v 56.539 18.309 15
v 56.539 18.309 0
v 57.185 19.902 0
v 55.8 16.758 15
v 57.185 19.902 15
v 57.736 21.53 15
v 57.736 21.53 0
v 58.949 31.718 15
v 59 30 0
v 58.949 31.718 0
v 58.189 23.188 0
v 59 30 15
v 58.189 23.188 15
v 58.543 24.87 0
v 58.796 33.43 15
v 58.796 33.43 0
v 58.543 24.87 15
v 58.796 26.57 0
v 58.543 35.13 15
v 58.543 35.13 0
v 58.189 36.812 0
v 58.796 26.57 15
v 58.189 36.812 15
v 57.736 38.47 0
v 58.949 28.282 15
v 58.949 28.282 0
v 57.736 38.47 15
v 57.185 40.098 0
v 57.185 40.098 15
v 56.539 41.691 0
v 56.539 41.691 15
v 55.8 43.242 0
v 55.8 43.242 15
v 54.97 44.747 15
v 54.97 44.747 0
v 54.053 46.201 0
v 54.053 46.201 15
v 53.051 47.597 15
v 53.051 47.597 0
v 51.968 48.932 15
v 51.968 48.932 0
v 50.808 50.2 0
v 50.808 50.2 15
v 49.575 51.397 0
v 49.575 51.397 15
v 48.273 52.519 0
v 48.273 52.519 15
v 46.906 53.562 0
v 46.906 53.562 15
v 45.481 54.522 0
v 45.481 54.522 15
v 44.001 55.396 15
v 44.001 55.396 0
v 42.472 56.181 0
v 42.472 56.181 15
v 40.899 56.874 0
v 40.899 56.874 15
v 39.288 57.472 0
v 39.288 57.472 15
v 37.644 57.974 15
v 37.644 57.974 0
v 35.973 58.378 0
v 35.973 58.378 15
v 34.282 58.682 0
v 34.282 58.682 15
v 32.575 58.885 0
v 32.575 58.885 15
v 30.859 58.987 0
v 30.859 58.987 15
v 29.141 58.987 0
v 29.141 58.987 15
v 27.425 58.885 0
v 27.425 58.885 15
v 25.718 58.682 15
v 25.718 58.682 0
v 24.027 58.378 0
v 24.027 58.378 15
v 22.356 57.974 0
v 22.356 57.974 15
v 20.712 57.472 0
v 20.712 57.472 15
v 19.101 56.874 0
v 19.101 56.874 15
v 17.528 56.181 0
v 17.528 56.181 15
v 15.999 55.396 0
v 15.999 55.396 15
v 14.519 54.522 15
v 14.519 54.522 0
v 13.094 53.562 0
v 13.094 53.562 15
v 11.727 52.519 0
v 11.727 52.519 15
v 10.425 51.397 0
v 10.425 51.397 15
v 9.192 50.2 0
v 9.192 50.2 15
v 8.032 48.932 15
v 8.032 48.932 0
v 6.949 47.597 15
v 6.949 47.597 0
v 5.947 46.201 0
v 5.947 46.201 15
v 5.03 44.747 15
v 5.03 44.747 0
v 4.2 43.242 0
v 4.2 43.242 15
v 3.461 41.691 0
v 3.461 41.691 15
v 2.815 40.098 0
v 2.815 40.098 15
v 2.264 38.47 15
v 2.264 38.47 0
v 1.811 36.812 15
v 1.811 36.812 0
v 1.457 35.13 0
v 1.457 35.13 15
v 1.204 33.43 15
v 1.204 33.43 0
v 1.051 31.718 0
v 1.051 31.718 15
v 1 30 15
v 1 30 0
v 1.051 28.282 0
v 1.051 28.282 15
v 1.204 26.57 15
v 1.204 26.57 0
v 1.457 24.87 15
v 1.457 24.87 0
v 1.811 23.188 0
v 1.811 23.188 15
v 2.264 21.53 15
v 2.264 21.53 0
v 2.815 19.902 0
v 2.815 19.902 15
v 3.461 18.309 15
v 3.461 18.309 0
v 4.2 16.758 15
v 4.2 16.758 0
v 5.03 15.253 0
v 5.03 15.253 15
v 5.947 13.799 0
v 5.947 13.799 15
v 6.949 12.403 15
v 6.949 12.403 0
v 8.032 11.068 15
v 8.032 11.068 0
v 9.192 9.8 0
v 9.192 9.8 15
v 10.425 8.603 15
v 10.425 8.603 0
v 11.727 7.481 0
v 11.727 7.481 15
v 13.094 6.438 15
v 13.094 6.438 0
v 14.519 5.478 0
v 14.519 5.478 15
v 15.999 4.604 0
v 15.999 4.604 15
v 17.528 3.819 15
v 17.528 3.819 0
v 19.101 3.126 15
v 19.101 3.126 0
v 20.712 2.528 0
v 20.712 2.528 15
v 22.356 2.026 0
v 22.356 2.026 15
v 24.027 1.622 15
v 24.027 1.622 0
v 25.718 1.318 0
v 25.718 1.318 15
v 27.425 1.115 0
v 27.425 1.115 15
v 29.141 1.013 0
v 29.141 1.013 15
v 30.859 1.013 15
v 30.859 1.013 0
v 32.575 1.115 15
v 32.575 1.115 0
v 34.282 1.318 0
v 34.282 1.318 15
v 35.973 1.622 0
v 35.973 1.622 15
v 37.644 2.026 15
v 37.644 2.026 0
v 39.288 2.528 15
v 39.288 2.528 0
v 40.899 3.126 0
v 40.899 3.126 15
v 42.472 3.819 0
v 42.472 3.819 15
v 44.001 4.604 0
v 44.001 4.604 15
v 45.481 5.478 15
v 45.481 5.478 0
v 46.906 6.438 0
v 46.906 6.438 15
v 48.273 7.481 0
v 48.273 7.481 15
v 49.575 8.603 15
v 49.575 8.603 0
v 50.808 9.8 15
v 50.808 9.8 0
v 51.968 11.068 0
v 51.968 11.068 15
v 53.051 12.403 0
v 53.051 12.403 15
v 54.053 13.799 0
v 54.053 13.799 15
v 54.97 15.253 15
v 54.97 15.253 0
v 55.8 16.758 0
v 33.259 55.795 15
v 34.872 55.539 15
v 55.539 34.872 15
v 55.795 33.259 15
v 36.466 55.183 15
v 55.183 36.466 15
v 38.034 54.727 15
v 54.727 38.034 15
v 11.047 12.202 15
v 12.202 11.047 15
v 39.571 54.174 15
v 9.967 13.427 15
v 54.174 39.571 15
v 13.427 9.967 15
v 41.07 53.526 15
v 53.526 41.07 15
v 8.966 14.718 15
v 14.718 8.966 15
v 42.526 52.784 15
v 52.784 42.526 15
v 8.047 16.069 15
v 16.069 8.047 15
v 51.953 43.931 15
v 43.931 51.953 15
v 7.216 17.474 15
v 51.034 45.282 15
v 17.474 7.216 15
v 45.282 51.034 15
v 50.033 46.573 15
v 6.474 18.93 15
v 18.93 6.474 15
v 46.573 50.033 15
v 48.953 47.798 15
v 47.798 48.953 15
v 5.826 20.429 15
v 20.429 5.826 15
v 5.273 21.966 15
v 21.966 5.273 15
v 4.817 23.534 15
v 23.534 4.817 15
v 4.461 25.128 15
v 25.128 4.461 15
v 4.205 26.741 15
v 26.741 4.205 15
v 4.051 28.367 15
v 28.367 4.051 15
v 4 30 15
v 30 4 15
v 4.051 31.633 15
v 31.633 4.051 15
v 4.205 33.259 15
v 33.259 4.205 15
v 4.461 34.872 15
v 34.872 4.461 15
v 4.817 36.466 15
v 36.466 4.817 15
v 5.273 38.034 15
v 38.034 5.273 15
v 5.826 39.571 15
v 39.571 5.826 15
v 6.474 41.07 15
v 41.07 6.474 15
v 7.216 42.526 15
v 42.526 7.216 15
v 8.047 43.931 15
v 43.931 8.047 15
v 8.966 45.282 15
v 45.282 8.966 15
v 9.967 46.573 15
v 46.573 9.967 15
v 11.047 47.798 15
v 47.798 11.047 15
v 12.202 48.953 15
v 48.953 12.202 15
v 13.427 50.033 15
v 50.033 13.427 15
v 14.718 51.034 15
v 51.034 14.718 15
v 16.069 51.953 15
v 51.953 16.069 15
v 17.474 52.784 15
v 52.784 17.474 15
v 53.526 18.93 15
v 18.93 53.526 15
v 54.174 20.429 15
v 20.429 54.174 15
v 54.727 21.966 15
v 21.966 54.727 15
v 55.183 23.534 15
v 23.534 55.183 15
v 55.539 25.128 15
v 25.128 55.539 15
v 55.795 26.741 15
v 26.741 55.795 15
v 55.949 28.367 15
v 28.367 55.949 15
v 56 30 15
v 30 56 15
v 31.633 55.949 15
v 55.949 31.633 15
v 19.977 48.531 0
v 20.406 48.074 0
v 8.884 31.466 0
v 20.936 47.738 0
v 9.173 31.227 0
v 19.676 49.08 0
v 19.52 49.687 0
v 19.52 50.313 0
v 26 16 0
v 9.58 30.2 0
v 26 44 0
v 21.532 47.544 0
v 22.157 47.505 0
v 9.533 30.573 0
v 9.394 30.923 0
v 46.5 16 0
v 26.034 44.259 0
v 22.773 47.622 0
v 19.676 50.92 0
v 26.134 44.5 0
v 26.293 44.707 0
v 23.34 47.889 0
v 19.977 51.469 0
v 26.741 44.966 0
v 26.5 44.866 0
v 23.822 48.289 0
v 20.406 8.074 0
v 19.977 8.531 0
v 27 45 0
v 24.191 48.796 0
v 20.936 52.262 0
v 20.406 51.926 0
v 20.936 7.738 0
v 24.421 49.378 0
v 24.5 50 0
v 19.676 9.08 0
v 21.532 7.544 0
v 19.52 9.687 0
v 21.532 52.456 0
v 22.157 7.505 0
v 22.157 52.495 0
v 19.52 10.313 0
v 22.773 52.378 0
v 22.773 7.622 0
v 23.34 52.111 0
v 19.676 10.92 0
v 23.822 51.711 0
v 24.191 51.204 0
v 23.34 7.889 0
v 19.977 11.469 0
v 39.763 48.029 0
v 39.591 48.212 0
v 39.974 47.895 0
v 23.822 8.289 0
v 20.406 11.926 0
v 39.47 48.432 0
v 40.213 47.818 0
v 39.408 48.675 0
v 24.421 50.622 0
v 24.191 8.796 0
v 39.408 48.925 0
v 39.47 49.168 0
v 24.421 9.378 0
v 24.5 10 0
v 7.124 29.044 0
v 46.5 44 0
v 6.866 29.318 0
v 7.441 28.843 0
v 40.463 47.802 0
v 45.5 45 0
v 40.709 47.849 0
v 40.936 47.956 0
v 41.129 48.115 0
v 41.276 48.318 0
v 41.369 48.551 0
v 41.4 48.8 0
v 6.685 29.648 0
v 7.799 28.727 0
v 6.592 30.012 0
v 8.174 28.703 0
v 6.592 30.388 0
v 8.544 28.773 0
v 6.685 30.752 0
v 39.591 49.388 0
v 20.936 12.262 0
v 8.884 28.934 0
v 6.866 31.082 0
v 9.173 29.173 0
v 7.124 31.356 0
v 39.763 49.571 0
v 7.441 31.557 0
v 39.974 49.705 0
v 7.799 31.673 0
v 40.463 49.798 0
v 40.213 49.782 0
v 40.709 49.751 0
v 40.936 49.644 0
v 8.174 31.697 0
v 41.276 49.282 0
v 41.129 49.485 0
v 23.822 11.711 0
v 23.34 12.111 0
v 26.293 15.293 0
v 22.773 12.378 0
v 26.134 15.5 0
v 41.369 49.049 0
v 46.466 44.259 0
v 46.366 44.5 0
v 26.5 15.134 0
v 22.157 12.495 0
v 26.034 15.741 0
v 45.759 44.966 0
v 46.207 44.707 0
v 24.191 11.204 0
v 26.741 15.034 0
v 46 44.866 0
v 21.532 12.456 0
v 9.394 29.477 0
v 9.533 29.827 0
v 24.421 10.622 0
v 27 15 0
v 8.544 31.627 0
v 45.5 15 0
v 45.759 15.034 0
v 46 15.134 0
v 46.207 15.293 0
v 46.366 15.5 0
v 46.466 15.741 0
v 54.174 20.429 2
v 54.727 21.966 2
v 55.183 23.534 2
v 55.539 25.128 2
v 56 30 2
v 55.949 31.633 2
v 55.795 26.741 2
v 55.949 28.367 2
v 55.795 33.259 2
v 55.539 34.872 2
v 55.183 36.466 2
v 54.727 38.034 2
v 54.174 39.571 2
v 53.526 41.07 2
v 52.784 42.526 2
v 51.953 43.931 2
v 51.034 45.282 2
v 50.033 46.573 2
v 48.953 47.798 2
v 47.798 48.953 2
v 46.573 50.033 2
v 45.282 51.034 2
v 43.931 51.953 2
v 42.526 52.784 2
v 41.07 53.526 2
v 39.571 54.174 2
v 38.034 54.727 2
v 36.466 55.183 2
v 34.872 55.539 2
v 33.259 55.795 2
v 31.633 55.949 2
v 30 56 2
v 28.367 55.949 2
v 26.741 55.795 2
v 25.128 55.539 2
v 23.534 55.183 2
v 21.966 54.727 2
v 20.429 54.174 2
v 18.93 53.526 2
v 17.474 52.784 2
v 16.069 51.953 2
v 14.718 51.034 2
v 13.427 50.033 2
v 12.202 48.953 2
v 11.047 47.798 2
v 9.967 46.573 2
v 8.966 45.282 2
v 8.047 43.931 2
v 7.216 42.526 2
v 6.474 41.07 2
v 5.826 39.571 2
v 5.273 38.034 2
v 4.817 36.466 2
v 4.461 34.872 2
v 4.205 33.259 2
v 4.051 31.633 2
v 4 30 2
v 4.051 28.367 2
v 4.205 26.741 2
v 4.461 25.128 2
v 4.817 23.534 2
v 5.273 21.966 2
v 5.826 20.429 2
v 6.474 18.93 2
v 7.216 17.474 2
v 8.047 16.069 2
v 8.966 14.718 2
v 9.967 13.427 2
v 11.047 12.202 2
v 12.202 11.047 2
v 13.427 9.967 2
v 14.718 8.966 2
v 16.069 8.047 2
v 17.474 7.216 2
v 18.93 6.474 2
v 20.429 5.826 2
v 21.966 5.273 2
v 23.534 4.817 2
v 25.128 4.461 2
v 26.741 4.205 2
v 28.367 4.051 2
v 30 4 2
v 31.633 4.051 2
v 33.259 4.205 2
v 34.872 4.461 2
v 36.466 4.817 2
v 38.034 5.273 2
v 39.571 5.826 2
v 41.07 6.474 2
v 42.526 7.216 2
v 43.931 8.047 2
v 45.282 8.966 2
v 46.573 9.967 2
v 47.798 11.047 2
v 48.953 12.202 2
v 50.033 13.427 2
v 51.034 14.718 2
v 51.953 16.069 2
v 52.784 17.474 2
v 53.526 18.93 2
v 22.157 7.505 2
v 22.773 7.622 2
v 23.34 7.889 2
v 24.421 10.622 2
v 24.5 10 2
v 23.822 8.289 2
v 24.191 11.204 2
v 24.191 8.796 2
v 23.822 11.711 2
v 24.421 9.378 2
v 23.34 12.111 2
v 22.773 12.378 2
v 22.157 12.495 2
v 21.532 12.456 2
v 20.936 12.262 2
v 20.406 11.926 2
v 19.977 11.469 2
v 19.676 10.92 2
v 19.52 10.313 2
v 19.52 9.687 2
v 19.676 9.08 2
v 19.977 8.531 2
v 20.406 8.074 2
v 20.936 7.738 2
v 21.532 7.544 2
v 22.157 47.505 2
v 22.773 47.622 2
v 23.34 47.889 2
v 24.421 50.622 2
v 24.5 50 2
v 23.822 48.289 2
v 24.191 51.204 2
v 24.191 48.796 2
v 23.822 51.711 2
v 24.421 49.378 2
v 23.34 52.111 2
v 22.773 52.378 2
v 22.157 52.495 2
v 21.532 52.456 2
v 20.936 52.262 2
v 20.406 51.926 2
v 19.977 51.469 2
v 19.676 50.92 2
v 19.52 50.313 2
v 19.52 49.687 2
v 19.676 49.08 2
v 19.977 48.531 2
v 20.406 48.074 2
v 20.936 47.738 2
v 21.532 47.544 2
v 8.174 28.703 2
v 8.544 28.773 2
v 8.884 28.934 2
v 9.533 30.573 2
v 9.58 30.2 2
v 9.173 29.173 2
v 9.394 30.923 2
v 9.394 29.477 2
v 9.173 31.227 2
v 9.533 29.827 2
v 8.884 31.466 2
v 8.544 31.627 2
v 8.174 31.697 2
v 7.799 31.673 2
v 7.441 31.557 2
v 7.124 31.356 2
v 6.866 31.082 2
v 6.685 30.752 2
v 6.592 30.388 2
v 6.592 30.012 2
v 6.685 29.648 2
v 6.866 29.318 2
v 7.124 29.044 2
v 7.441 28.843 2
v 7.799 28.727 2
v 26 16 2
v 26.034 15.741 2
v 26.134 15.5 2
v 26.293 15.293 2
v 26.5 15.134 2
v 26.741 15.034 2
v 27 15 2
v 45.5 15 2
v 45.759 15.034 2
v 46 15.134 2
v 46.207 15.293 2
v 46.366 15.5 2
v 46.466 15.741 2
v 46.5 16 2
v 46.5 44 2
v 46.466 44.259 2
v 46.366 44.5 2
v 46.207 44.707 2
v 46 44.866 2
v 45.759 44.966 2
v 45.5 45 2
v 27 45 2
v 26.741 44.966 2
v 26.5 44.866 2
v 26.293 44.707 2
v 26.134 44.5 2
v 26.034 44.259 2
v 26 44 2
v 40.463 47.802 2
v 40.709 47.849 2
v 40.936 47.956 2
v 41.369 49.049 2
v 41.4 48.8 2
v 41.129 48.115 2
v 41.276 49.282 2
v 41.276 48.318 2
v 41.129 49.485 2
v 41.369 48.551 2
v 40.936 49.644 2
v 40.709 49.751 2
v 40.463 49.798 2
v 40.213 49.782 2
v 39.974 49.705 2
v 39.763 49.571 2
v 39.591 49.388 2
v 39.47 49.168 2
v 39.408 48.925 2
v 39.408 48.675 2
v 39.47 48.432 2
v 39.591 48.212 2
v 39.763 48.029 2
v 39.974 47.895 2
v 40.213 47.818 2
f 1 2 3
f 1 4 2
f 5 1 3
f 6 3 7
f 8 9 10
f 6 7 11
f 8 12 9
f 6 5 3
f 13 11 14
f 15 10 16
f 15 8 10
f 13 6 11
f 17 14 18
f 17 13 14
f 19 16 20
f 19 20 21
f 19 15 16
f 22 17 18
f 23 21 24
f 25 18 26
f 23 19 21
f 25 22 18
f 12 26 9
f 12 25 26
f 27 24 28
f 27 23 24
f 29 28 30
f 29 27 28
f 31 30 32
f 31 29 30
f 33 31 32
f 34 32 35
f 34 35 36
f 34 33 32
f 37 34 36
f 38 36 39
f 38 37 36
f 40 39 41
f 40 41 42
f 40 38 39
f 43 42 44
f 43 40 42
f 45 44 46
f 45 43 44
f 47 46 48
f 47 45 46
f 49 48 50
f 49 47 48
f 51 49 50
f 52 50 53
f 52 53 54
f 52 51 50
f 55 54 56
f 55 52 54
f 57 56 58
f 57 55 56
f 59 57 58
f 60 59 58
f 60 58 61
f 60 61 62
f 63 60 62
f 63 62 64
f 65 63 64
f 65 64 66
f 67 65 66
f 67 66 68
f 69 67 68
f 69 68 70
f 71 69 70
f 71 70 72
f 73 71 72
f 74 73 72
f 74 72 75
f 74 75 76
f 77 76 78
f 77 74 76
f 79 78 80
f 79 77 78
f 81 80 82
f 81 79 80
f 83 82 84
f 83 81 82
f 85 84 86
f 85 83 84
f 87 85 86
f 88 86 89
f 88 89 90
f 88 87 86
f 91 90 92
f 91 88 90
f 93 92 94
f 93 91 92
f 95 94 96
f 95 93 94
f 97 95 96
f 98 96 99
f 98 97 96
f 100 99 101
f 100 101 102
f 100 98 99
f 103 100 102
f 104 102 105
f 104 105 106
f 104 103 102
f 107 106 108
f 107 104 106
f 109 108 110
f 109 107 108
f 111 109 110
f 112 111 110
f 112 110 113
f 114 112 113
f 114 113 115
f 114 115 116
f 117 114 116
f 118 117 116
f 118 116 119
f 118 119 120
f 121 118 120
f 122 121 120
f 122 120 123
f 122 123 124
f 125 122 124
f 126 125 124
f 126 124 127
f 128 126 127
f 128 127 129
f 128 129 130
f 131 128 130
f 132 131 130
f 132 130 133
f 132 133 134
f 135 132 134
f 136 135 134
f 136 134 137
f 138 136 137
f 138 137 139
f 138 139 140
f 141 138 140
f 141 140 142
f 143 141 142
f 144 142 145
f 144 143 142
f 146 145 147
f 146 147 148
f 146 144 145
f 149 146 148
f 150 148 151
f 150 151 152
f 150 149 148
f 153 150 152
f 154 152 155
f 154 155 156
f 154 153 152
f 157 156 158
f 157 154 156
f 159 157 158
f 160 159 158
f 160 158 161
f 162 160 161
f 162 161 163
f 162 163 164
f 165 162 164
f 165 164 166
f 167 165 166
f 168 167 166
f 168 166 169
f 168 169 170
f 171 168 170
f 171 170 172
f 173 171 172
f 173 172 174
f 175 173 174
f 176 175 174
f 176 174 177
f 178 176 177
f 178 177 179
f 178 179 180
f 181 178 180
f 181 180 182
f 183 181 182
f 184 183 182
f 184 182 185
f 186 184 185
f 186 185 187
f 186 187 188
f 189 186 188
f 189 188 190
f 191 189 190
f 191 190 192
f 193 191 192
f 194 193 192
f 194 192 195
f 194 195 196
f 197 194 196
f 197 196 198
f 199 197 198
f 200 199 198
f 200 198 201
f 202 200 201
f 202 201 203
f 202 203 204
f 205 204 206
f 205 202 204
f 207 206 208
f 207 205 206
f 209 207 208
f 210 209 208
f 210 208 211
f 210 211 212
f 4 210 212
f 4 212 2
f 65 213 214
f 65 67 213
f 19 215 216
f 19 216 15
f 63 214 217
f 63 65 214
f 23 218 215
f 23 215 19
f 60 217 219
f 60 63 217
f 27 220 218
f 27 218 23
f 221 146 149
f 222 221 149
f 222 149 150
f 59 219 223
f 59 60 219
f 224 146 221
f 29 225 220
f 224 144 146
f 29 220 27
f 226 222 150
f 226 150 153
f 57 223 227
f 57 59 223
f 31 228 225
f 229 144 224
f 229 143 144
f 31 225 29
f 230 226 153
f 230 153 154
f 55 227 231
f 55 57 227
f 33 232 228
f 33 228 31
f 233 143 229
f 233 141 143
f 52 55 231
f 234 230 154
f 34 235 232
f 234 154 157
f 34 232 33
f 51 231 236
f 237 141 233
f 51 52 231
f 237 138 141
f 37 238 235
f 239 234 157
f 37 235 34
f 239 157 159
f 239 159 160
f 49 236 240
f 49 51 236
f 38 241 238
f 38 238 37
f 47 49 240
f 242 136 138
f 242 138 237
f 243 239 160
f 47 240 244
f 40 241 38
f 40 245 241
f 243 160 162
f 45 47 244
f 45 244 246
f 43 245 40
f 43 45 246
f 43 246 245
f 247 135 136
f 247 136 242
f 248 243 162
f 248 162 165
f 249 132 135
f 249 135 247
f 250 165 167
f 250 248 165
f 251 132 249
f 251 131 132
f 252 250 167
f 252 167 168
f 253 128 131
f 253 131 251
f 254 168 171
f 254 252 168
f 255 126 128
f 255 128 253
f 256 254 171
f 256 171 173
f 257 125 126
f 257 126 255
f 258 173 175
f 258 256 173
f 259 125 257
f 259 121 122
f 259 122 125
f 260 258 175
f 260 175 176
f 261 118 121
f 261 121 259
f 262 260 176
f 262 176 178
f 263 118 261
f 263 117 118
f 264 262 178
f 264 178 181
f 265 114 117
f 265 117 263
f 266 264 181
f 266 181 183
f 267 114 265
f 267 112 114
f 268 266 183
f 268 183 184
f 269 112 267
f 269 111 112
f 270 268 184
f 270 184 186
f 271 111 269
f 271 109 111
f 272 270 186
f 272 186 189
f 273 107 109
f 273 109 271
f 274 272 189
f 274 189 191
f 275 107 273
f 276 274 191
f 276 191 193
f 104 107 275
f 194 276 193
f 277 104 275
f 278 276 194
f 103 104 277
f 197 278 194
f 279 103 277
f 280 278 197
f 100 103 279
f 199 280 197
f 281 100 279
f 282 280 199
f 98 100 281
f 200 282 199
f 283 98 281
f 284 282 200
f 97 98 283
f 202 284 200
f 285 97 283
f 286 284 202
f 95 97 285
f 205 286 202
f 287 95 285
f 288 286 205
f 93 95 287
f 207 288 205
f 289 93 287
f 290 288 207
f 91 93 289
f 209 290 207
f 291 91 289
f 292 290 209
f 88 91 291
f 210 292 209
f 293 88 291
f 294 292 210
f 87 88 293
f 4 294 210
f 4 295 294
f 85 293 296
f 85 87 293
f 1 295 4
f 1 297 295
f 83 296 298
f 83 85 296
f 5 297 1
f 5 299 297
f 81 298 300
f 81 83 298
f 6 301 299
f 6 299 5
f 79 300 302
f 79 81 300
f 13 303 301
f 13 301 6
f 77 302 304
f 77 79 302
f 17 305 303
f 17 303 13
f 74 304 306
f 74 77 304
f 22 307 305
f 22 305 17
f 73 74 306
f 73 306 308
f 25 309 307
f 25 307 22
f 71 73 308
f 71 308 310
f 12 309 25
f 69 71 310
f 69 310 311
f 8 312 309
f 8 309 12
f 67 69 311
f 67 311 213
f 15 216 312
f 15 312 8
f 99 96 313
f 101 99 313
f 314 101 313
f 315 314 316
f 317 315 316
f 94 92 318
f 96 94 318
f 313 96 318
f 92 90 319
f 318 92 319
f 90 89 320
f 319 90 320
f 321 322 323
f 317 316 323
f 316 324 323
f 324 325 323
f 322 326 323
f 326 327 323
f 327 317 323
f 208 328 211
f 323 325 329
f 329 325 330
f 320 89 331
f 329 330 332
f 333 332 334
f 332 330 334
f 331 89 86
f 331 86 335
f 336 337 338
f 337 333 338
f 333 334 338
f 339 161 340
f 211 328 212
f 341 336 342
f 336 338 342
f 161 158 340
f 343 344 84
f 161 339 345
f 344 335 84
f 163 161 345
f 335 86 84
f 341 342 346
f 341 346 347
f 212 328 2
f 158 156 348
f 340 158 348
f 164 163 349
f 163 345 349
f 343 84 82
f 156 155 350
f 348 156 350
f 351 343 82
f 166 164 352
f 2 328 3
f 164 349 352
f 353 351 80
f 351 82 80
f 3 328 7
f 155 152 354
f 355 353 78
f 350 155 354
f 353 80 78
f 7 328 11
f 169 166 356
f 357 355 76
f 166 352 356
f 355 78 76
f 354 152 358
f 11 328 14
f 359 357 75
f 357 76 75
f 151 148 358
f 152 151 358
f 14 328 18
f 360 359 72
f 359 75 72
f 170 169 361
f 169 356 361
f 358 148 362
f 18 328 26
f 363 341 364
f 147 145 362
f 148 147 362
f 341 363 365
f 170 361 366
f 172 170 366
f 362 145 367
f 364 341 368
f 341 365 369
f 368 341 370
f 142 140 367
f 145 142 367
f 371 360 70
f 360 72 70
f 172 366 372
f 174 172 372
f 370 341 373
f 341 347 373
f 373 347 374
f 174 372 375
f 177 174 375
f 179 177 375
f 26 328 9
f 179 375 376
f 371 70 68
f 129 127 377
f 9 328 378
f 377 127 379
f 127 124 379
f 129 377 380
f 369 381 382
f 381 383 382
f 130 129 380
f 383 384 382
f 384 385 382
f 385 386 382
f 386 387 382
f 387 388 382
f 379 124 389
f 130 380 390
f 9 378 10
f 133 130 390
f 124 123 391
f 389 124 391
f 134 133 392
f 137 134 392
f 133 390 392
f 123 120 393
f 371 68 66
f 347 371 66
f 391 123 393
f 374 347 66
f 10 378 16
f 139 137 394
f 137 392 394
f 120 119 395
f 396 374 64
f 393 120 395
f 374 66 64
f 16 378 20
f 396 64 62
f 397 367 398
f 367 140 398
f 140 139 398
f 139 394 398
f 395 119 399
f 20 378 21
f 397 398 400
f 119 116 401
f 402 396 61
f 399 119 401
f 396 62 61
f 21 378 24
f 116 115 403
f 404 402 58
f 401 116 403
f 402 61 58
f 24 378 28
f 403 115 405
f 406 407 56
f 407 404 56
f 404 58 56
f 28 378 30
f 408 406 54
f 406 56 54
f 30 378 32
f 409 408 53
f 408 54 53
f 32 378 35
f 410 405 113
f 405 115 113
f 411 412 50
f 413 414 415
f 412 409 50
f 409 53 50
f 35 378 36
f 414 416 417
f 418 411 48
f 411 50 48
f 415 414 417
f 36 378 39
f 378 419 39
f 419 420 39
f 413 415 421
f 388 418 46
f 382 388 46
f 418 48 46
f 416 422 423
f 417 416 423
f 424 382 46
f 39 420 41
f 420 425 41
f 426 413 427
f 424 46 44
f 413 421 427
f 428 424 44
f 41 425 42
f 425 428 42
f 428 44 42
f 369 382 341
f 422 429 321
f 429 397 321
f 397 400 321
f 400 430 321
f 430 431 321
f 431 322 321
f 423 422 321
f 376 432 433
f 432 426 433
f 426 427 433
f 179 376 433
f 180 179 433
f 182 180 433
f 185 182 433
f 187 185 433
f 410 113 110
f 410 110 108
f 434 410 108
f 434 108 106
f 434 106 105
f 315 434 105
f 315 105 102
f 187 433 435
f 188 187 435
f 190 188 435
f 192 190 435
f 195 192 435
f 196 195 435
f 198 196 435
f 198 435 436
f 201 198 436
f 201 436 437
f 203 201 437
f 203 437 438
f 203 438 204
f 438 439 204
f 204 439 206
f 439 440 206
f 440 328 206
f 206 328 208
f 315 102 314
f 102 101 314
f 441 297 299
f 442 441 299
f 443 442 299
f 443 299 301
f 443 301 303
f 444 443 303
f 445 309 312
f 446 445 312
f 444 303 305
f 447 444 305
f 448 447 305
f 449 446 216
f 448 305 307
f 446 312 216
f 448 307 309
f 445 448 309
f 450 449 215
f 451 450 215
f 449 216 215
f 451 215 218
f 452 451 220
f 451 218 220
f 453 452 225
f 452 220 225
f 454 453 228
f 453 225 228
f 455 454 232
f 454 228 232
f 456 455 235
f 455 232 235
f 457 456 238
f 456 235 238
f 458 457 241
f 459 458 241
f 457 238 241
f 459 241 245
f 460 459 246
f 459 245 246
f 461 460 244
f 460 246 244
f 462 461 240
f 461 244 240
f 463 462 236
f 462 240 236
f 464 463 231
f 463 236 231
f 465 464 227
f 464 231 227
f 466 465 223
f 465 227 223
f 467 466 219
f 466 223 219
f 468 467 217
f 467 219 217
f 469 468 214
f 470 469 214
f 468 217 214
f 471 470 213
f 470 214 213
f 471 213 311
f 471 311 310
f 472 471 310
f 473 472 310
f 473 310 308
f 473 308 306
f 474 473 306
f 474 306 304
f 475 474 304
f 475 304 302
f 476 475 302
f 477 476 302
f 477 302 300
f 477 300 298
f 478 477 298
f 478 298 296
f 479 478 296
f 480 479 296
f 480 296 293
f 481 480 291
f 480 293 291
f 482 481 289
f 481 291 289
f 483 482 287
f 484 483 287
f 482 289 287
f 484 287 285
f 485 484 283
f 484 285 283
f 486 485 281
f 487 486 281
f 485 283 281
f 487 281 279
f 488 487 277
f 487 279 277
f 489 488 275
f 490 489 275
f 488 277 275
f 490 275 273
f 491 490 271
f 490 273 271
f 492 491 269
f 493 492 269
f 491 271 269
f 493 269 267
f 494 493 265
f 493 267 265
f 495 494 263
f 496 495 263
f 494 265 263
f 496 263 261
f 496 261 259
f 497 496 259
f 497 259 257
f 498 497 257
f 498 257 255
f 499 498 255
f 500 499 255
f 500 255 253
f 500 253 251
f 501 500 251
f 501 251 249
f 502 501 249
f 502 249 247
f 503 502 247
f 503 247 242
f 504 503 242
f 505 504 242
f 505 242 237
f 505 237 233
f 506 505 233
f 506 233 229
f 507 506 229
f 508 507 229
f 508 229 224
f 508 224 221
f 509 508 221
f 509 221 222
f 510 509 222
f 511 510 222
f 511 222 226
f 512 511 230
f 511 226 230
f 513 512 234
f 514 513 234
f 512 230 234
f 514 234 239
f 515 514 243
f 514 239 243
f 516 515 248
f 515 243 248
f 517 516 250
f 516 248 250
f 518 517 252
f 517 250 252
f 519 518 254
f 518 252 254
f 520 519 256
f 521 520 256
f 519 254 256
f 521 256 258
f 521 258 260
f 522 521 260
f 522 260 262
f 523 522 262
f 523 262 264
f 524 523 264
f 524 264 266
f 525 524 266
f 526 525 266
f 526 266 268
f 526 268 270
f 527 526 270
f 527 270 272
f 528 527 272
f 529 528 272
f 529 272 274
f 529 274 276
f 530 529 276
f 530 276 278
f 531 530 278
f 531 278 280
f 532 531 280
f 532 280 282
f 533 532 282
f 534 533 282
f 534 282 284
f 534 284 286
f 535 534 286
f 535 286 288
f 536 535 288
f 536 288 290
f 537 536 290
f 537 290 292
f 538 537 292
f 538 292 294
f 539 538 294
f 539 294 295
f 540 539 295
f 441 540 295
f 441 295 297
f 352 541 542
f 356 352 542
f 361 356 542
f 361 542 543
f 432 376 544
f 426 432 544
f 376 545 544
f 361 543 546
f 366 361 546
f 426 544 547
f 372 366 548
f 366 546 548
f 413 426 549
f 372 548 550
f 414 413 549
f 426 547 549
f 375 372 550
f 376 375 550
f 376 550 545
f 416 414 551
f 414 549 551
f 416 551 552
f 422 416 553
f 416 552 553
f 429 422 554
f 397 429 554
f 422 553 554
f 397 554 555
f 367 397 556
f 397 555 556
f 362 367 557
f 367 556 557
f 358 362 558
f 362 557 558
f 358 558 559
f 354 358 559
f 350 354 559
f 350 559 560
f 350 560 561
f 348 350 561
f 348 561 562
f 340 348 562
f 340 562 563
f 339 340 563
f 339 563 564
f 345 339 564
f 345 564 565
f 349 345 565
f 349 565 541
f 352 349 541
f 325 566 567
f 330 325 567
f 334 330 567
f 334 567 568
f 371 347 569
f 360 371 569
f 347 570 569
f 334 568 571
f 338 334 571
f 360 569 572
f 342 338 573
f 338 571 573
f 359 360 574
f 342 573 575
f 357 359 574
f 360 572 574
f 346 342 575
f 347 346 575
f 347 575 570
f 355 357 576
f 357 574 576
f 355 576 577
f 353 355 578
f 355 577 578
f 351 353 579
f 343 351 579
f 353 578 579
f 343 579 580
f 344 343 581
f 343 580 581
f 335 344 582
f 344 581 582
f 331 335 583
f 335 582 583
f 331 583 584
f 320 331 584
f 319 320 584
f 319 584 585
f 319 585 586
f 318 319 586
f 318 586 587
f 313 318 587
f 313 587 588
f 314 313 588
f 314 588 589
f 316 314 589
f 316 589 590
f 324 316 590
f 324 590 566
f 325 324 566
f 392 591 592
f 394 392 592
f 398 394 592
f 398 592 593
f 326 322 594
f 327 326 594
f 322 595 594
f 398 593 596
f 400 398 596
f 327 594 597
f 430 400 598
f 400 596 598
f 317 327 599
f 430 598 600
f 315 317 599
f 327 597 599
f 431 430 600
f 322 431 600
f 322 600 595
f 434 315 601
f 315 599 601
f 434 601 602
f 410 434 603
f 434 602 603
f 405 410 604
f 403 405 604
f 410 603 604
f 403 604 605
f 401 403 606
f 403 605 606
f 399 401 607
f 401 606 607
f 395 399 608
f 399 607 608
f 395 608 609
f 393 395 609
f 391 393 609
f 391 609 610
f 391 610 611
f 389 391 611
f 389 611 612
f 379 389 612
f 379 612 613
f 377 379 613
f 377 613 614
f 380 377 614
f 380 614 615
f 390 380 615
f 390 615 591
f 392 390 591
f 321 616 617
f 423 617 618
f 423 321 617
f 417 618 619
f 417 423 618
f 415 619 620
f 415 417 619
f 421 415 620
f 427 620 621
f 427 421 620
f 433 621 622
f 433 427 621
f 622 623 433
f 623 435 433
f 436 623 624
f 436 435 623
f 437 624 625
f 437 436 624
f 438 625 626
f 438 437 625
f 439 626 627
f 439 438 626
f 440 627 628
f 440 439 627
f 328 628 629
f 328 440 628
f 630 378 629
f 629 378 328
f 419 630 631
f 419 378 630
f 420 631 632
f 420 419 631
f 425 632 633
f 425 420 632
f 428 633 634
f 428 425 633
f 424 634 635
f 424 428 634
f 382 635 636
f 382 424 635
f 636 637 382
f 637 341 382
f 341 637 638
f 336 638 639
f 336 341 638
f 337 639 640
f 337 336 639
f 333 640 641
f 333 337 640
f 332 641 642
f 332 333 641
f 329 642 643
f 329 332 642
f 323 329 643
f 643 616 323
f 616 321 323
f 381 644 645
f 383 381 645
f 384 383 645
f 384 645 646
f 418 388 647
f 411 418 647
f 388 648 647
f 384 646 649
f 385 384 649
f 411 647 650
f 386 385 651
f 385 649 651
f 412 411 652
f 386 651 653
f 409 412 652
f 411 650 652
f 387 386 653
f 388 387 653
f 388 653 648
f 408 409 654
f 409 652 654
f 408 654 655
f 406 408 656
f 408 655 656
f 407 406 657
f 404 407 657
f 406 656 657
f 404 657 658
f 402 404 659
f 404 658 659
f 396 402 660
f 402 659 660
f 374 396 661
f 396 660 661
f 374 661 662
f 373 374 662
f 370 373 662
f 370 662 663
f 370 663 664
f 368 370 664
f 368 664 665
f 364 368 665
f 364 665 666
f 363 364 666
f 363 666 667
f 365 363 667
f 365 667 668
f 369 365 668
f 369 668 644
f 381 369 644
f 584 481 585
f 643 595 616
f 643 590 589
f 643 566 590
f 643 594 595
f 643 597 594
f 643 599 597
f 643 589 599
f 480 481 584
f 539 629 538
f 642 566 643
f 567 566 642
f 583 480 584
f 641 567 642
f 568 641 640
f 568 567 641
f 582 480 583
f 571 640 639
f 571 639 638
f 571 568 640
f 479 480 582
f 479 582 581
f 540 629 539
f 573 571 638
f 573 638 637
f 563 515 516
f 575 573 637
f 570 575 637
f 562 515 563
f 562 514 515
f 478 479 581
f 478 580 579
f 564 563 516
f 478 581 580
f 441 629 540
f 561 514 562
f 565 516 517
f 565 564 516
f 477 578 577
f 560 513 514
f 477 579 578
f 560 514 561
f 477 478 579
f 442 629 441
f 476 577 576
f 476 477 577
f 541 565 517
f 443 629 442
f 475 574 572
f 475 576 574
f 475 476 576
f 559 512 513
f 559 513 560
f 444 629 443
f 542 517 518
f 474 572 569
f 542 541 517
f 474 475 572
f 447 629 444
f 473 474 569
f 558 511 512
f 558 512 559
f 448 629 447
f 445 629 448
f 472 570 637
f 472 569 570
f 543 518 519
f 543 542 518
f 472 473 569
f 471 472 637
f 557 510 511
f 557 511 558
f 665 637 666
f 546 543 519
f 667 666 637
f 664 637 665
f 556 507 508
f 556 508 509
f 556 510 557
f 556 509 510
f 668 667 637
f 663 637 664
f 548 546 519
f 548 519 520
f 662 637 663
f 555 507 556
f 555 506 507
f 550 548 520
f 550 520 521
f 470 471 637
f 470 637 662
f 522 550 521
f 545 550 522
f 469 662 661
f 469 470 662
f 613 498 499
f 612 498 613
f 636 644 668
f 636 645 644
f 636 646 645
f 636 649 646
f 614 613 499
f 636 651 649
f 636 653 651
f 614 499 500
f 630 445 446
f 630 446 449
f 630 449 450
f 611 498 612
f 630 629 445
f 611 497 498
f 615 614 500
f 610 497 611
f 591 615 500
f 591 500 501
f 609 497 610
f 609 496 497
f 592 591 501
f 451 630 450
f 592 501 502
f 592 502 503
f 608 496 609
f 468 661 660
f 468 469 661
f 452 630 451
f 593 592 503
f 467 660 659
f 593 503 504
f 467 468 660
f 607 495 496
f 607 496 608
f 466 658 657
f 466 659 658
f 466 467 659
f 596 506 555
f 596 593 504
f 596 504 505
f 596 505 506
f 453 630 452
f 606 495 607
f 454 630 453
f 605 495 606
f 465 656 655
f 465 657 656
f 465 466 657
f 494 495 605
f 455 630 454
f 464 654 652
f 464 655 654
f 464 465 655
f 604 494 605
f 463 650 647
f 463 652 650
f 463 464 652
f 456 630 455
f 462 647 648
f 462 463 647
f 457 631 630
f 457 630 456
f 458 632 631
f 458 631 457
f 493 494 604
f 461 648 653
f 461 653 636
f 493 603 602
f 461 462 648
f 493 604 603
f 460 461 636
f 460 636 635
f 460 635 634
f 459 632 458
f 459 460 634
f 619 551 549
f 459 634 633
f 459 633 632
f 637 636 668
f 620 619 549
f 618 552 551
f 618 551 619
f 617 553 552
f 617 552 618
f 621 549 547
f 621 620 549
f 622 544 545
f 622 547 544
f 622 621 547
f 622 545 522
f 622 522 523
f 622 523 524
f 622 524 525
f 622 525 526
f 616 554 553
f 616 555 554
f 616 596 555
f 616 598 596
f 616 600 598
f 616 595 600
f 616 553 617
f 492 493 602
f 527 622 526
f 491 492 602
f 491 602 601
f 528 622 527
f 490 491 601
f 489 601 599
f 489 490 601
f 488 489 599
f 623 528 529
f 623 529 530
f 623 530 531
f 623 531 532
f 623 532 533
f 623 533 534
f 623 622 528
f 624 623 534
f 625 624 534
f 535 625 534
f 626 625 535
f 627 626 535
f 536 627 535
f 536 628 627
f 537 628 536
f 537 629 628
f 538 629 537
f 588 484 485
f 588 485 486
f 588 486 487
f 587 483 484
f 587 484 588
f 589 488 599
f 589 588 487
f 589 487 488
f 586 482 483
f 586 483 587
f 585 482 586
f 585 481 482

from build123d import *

# Parameters (mm, degrees)
PAD_DEPTH         = 10
CYLINDER002_R     = 2.5
CYLINDER002_DEPTH = 10
CYLINDER004_R     = 1.5
CYLINDER004_DEPTH = 10
CYLINDER003_R     = 1
CYLINDER003_DEPTH = 10
CYLINDER001_R     = 2.5
CYLINDER001_DEPTH = 10
CYLINDER005_R     = 26
CYLINDER005_DEPTH = 32
CYLINDER_R        = 29
CYLINDER_DEPTH    = 15


with BuildPart() as pad:
    # Sketch → Pad (new body)
    with BuildSketch(Plane.XY):
        with BuildLine():
            Line((27, 45), (45.5, 45))
            ThreePointArc((46.5, 44), (46.207107, 44.707107), (45.5, 45))
            Line((46.5, 44), (46.5, 16))
            ThreePointArc((45.5, 15), (46.207107, 15.292893), (46.5, 16))
            Line((45.5, 15), (27, 15))
            ThreePointArc((26, 16), (26.292893, 15.292893), (27, 15))
            Line((26, 16), (26, 44))
            ThreePointArc((27, 45), (26.292893, 44.707107), (26, 44))
        make_face()
    extrude(amount=PAD_DEPTH)


with BuildPart() as zylinder002:
    # Cylinder002 → Cylinder002 (new body)
    with BuildSketch(Plane(origin=(22, 50, -1), x_dir=(1, 0, 0), z_dir=(0, 0, 1))):
        Circle(CYLINDER002_R)
    extrude(amount=CYLINDER002_DEPTH)


with BuildPart() as zylinder004:
    # Cylinder004 → Cylinder004 (new body)
    with BuildSketch(Plane(origin=(8.08, 30.2, -1), x_dir=(1, 0, 0), z_dir=(0, 0, 1))):
        Circle(CYLINDER004_R)
    extrude(amount=CYLINDER004_DEPTH)


with BuildPart() as zylinder003:
    # Cylinder003 → Cylinder003 (new body)
    with BuildSketch(Plane(origin=(40.4, 48.8, -1), x_dir=(1, 0, 0), z_dir=(0, 0, 1))):
        Circle(CYLINDER003_R)
    extrude(amount=CYLINDER003_DEPTH)


with BuildPart() as fusion:
    # Cylinder001 → Cylinder001 (new body)
    with BuildSketch(Plane(origin=(22, 10, -1), x_dir=(1, 0, 0), z_dir=(0, 0, 1))):
        Circle(CYLINDER001_R)
    extrude(amount=CYLINDER001_DEPTH)

    # Fusion: union Pad, Zylinder002, Zylinder004, Zylinder003
    add(pad.part)
    add(zylinder002.part)
    add(zylinder004.part)
    add(zylinder003.part)


with BuildPart() as zylinder005:
    # Cylinder005 → Cylinder005 (new body)
    with BuildSketch(Plane(origin=(30, 30, 2), x_dir=(1, 0, 0), z_dir=(0, 0, 1))):
        Circle(CYLINDER005_R)
    extrude(amount=CYLINDER005_DEPTH)


with BuildPart() as cut001:
    # Cylinder → Cylinder (new body)
    with BuildSketch(Plane(origin=(30, 30, 0), x_dir=(1, 0, 0), z_dir=(0, 0, 1))):
        Circle(CYLINDER_R)
    extrude(amount=CYLINDER_DEPTH)

    # Cut: cut Zylinder005
    add(zylinder005.part, mode=Mode.SUBTRACT)

    # Cut001: cut Fusion
    add(fusion.part, mode=Mode.SUBTRACT)


solid = cut001.part
